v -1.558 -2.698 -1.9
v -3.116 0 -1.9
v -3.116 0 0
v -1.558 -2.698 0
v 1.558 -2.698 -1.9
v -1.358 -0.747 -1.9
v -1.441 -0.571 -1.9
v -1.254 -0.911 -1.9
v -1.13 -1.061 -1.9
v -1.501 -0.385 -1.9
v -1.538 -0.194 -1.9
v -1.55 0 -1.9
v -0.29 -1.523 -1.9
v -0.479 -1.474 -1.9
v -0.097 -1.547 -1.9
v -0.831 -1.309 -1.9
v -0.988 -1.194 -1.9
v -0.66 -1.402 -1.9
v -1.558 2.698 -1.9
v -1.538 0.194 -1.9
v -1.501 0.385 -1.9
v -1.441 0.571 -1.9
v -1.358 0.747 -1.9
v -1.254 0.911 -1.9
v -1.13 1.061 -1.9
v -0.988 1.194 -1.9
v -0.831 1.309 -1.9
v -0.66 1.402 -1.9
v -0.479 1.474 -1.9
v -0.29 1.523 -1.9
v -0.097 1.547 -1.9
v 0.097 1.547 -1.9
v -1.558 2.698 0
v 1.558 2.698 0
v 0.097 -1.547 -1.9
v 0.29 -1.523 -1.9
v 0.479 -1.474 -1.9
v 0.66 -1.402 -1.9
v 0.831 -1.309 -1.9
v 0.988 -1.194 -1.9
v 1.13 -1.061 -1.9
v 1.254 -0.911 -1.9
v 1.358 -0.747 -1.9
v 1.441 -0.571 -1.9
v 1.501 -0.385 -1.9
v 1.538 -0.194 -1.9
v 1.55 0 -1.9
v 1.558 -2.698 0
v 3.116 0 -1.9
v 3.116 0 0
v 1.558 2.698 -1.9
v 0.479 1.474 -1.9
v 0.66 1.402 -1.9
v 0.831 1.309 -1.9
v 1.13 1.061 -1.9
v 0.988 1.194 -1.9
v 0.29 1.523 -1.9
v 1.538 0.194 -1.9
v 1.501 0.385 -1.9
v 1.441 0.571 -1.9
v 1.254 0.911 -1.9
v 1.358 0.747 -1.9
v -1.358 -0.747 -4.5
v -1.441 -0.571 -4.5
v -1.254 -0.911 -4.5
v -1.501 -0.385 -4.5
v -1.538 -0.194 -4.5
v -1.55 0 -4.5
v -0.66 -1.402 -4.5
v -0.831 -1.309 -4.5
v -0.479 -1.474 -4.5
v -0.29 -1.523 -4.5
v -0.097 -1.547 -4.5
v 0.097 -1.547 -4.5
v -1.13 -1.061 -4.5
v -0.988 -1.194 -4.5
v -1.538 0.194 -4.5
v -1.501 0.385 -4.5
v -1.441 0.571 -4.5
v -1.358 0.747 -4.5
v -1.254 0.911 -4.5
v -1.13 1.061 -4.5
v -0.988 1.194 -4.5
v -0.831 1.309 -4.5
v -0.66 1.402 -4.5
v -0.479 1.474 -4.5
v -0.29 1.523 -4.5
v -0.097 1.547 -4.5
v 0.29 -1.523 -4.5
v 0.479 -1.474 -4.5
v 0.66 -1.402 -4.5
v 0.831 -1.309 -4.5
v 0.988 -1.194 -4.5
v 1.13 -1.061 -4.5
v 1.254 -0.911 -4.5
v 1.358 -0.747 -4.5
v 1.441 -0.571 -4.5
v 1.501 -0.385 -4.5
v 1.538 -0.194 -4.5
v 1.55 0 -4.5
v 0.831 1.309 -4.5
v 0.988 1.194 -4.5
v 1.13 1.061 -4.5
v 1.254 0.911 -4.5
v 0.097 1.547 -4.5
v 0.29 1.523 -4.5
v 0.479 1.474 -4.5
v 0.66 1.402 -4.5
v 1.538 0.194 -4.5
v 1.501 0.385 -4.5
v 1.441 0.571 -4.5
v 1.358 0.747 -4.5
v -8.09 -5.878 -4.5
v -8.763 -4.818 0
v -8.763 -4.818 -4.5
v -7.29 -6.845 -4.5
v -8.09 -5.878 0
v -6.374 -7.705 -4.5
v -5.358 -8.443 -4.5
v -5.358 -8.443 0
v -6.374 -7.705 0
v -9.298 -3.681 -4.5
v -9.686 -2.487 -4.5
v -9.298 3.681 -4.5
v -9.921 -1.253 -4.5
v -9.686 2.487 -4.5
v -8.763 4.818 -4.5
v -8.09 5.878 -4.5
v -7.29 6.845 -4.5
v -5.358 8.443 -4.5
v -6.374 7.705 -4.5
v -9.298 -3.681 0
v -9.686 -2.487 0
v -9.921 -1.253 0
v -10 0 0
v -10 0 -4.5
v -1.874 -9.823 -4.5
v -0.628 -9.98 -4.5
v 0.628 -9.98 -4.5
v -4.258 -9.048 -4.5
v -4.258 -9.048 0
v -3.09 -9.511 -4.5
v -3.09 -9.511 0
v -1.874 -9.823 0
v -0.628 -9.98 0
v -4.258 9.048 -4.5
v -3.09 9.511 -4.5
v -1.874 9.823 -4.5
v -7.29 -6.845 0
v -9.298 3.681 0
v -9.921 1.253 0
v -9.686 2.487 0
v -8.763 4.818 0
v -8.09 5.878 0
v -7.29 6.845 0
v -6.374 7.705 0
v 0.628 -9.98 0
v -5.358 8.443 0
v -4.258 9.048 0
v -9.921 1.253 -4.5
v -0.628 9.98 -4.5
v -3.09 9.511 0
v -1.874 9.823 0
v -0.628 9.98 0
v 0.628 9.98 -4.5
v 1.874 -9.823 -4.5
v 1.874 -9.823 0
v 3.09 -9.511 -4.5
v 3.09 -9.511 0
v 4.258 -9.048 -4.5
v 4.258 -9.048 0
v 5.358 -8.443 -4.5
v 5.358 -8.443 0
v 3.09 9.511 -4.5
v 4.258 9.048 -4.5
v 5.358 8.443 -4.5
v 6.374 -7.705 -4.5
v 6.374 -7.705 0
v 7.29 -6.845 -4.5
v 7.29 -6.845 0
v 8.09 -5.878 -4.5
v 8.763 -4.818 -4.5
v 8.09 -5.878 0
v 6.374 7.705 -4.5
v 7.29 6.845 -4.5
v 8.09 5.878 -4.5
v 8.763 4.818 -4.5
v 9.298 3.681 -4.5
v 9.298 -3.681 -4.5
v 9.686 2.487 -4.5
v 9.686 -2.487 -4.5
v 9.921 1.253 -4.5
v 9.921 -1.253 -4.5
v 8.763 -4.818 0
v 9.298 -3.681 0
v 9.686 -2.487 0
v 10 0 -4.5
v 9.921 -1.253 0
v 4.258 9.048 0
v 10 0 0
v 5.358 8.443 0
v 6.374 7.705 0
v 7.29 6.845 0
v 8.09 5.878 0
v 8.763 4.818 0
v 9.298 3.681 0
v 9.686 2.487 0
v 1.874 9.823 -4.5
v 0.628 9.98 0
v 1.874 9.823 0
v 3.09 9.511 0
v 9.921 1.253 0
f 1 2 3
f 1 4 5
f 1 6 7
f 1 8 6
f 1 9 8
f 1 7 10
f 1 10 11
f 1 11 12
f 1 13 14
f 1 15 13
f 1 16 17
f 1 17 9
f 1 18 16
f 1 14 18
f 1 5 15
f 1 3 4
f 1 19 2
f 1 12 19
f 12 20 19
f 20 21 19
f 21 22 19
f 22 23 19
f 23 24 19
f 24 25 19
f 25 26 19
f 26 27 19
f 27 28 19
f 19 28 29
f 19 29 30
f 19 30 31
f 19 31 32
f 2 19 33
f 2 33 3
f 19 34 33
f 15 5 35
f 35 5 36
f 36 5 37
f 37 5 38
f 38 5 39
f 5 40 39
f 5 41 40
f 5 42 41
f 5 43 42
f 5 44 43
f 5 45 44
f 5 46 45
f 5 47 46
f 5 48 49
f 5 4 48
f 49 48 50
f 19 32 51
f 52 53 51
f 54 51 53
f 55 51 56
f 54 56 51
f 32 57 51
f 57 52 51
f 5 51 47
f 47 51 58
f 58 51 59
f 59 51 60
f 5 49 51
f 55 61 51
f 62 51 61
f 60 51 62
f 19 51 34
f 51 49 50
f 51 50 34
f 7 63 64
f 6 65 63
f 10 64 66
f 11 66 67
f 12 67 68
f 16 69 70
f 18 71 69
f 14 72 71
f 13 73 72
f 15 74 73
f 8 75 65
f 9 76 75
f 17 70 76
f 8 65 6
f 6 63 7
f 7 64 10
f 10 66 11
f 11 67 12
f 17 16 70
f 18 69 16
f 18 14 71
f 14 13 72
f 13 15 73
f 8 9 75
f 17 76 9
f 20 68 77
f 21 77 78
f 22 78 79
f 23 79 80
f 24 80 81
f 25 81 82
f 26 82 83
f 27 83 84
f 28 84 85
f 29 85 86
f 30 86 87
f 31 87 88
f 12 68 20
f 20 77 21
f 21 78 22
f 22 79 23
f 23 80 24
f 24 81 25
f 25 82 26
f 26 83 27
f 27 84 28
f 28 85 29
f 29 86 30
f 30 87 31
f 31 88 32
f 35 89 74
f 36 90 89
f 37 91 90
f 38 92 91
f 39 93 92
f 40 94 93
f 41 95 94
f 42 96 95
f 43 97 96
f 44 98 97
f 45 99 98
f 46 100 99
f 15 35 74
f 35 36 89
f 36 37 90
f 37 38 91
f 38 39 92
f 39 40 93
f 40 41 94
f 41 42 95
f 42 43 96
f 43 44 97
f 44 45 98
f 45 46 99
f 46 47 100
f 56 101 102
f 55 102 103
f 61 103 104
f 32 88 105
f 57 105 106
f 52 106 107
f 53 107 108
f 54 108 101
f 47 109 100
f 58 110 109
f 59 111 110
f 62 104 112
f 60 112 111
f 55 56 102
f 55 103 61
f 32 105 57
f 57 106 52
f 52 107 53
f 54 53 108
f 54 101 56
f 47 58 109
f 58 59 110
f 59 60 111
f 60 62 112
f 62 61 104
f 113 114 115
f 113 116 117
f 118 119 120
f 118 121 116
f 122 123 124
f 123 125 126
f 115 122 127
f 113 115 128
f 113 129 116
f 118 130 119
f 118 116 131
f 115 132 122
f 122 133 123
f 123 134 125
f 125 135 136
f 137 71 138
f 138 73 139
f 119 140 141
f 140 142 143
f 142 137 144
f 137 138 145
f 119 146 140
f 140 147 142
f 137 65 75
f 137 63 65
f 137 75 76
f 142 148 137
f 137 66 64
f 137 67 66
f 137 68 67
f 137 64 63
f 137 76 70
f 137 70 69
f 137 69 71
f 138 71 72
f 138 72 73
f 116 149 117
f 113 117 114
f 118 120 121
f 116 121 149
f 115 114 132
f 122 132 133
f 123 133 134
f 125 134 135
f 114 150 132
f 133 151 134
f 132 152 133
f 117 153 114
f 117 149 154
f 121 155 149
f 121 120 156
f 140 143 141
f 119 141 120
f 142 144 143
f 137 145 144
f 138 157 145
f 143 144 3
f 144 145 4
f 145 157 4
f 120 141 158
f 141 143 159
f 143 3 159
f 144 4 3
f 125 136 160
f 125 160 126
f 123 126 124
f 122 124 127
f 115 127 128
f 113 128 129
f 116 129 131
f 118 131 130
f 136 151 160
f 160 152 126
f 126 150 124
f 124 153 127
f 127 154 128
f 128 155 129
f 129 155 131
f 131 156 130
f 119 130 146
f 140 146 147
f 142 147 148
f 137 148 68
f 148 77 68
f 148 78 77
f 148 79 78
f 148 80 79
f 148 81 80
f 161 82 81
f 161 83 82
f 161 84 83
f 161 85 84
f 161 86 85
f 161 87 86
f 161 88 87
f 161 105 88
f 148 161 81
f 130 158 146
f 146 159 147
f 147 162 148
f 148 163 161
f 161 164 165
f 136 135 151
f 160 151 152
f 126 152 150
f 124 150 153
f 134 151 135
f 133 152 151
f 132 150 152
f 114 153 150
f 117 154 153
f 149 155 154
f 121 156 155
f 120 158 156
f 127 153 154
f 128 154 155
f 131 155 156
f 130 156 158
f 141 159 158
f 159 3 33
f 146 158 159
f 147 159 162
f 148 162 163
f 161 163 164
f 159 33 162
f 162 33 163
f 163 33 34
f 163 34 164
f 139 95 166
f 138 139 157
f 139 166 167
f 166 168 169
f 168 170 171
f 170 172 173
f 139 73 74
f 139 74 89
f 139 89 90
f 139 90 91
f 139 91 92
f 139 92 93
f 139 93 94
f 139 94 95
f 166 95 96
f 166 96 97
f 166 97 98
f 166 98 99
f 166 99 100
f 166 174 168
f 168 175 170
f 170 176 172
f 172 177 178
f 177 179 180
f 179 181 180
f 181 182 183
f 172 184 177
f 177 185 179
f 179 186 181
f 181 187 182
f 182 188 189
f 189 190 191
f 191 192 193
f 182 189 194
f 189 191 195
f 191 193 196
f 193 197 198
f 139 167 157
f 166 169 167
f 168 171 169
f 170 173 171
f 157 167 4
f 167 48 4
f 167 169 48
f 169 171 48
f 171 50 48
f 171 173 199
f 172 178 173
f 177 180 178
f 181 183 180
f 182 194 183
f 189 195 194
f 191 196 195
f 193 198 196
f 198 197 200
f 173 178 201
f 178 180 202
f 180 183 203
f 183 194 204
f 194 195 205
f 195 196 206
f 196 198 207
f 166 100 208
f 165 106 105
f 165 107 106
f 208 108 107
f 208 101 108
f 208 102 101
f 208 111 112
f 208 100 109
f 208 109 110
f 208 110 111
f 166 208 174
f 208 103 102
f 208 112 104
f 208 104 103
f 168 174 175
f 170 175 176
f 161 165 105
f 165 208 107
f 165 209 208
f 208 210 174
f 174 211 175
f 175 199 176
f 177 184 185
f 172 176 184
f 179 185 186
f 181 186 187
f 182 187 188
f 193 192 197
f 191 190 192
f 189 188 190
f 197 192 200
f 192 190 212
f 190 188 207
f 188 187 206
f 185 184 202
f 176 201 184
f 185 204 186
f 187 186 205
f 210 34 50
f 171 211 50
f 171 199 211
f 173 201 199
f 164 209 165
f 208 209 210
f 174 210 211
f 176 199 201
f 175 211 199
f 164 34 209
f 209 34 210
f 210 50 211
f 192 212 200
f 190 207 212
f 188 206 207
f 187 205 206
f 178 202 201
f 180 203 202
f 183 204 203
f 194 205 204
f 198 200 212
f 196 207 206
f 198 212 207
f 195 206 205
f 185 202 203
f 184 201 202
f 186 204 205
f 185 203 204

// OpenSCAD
$fn = 50;

difference() {
	union() {
		translate(v = [0, 0, -4.5]) {
			cylinder(h = 4.5, r = 10.0);
		}
	}
	union() {
		translate(v = [0, 0, 0]) {
			rotate(a = [0, 0, 0]) {
				difference() {
					union() {
						translate(v = [0, 0, -1.9]) {
							linear_extrude(height = 1.9) {
								polygon(points = [[3.1158, 0.0], [1.5579000000000005, 2.698361953111554], [-1.5578999999999994, 2.6983619531115544], [-3.1158, 3.815754496783323e-16], [-1.5579000000000014, -2.6983619531115535], [1.557899999999998, -2.6983619531115552]]);
							}
						}
					}
					union();
				}
			}
		}
		#translate(v = [0, 0, -100.0]) {
			cylinder(h = 200, r = 1.55);
		}
	}
}
